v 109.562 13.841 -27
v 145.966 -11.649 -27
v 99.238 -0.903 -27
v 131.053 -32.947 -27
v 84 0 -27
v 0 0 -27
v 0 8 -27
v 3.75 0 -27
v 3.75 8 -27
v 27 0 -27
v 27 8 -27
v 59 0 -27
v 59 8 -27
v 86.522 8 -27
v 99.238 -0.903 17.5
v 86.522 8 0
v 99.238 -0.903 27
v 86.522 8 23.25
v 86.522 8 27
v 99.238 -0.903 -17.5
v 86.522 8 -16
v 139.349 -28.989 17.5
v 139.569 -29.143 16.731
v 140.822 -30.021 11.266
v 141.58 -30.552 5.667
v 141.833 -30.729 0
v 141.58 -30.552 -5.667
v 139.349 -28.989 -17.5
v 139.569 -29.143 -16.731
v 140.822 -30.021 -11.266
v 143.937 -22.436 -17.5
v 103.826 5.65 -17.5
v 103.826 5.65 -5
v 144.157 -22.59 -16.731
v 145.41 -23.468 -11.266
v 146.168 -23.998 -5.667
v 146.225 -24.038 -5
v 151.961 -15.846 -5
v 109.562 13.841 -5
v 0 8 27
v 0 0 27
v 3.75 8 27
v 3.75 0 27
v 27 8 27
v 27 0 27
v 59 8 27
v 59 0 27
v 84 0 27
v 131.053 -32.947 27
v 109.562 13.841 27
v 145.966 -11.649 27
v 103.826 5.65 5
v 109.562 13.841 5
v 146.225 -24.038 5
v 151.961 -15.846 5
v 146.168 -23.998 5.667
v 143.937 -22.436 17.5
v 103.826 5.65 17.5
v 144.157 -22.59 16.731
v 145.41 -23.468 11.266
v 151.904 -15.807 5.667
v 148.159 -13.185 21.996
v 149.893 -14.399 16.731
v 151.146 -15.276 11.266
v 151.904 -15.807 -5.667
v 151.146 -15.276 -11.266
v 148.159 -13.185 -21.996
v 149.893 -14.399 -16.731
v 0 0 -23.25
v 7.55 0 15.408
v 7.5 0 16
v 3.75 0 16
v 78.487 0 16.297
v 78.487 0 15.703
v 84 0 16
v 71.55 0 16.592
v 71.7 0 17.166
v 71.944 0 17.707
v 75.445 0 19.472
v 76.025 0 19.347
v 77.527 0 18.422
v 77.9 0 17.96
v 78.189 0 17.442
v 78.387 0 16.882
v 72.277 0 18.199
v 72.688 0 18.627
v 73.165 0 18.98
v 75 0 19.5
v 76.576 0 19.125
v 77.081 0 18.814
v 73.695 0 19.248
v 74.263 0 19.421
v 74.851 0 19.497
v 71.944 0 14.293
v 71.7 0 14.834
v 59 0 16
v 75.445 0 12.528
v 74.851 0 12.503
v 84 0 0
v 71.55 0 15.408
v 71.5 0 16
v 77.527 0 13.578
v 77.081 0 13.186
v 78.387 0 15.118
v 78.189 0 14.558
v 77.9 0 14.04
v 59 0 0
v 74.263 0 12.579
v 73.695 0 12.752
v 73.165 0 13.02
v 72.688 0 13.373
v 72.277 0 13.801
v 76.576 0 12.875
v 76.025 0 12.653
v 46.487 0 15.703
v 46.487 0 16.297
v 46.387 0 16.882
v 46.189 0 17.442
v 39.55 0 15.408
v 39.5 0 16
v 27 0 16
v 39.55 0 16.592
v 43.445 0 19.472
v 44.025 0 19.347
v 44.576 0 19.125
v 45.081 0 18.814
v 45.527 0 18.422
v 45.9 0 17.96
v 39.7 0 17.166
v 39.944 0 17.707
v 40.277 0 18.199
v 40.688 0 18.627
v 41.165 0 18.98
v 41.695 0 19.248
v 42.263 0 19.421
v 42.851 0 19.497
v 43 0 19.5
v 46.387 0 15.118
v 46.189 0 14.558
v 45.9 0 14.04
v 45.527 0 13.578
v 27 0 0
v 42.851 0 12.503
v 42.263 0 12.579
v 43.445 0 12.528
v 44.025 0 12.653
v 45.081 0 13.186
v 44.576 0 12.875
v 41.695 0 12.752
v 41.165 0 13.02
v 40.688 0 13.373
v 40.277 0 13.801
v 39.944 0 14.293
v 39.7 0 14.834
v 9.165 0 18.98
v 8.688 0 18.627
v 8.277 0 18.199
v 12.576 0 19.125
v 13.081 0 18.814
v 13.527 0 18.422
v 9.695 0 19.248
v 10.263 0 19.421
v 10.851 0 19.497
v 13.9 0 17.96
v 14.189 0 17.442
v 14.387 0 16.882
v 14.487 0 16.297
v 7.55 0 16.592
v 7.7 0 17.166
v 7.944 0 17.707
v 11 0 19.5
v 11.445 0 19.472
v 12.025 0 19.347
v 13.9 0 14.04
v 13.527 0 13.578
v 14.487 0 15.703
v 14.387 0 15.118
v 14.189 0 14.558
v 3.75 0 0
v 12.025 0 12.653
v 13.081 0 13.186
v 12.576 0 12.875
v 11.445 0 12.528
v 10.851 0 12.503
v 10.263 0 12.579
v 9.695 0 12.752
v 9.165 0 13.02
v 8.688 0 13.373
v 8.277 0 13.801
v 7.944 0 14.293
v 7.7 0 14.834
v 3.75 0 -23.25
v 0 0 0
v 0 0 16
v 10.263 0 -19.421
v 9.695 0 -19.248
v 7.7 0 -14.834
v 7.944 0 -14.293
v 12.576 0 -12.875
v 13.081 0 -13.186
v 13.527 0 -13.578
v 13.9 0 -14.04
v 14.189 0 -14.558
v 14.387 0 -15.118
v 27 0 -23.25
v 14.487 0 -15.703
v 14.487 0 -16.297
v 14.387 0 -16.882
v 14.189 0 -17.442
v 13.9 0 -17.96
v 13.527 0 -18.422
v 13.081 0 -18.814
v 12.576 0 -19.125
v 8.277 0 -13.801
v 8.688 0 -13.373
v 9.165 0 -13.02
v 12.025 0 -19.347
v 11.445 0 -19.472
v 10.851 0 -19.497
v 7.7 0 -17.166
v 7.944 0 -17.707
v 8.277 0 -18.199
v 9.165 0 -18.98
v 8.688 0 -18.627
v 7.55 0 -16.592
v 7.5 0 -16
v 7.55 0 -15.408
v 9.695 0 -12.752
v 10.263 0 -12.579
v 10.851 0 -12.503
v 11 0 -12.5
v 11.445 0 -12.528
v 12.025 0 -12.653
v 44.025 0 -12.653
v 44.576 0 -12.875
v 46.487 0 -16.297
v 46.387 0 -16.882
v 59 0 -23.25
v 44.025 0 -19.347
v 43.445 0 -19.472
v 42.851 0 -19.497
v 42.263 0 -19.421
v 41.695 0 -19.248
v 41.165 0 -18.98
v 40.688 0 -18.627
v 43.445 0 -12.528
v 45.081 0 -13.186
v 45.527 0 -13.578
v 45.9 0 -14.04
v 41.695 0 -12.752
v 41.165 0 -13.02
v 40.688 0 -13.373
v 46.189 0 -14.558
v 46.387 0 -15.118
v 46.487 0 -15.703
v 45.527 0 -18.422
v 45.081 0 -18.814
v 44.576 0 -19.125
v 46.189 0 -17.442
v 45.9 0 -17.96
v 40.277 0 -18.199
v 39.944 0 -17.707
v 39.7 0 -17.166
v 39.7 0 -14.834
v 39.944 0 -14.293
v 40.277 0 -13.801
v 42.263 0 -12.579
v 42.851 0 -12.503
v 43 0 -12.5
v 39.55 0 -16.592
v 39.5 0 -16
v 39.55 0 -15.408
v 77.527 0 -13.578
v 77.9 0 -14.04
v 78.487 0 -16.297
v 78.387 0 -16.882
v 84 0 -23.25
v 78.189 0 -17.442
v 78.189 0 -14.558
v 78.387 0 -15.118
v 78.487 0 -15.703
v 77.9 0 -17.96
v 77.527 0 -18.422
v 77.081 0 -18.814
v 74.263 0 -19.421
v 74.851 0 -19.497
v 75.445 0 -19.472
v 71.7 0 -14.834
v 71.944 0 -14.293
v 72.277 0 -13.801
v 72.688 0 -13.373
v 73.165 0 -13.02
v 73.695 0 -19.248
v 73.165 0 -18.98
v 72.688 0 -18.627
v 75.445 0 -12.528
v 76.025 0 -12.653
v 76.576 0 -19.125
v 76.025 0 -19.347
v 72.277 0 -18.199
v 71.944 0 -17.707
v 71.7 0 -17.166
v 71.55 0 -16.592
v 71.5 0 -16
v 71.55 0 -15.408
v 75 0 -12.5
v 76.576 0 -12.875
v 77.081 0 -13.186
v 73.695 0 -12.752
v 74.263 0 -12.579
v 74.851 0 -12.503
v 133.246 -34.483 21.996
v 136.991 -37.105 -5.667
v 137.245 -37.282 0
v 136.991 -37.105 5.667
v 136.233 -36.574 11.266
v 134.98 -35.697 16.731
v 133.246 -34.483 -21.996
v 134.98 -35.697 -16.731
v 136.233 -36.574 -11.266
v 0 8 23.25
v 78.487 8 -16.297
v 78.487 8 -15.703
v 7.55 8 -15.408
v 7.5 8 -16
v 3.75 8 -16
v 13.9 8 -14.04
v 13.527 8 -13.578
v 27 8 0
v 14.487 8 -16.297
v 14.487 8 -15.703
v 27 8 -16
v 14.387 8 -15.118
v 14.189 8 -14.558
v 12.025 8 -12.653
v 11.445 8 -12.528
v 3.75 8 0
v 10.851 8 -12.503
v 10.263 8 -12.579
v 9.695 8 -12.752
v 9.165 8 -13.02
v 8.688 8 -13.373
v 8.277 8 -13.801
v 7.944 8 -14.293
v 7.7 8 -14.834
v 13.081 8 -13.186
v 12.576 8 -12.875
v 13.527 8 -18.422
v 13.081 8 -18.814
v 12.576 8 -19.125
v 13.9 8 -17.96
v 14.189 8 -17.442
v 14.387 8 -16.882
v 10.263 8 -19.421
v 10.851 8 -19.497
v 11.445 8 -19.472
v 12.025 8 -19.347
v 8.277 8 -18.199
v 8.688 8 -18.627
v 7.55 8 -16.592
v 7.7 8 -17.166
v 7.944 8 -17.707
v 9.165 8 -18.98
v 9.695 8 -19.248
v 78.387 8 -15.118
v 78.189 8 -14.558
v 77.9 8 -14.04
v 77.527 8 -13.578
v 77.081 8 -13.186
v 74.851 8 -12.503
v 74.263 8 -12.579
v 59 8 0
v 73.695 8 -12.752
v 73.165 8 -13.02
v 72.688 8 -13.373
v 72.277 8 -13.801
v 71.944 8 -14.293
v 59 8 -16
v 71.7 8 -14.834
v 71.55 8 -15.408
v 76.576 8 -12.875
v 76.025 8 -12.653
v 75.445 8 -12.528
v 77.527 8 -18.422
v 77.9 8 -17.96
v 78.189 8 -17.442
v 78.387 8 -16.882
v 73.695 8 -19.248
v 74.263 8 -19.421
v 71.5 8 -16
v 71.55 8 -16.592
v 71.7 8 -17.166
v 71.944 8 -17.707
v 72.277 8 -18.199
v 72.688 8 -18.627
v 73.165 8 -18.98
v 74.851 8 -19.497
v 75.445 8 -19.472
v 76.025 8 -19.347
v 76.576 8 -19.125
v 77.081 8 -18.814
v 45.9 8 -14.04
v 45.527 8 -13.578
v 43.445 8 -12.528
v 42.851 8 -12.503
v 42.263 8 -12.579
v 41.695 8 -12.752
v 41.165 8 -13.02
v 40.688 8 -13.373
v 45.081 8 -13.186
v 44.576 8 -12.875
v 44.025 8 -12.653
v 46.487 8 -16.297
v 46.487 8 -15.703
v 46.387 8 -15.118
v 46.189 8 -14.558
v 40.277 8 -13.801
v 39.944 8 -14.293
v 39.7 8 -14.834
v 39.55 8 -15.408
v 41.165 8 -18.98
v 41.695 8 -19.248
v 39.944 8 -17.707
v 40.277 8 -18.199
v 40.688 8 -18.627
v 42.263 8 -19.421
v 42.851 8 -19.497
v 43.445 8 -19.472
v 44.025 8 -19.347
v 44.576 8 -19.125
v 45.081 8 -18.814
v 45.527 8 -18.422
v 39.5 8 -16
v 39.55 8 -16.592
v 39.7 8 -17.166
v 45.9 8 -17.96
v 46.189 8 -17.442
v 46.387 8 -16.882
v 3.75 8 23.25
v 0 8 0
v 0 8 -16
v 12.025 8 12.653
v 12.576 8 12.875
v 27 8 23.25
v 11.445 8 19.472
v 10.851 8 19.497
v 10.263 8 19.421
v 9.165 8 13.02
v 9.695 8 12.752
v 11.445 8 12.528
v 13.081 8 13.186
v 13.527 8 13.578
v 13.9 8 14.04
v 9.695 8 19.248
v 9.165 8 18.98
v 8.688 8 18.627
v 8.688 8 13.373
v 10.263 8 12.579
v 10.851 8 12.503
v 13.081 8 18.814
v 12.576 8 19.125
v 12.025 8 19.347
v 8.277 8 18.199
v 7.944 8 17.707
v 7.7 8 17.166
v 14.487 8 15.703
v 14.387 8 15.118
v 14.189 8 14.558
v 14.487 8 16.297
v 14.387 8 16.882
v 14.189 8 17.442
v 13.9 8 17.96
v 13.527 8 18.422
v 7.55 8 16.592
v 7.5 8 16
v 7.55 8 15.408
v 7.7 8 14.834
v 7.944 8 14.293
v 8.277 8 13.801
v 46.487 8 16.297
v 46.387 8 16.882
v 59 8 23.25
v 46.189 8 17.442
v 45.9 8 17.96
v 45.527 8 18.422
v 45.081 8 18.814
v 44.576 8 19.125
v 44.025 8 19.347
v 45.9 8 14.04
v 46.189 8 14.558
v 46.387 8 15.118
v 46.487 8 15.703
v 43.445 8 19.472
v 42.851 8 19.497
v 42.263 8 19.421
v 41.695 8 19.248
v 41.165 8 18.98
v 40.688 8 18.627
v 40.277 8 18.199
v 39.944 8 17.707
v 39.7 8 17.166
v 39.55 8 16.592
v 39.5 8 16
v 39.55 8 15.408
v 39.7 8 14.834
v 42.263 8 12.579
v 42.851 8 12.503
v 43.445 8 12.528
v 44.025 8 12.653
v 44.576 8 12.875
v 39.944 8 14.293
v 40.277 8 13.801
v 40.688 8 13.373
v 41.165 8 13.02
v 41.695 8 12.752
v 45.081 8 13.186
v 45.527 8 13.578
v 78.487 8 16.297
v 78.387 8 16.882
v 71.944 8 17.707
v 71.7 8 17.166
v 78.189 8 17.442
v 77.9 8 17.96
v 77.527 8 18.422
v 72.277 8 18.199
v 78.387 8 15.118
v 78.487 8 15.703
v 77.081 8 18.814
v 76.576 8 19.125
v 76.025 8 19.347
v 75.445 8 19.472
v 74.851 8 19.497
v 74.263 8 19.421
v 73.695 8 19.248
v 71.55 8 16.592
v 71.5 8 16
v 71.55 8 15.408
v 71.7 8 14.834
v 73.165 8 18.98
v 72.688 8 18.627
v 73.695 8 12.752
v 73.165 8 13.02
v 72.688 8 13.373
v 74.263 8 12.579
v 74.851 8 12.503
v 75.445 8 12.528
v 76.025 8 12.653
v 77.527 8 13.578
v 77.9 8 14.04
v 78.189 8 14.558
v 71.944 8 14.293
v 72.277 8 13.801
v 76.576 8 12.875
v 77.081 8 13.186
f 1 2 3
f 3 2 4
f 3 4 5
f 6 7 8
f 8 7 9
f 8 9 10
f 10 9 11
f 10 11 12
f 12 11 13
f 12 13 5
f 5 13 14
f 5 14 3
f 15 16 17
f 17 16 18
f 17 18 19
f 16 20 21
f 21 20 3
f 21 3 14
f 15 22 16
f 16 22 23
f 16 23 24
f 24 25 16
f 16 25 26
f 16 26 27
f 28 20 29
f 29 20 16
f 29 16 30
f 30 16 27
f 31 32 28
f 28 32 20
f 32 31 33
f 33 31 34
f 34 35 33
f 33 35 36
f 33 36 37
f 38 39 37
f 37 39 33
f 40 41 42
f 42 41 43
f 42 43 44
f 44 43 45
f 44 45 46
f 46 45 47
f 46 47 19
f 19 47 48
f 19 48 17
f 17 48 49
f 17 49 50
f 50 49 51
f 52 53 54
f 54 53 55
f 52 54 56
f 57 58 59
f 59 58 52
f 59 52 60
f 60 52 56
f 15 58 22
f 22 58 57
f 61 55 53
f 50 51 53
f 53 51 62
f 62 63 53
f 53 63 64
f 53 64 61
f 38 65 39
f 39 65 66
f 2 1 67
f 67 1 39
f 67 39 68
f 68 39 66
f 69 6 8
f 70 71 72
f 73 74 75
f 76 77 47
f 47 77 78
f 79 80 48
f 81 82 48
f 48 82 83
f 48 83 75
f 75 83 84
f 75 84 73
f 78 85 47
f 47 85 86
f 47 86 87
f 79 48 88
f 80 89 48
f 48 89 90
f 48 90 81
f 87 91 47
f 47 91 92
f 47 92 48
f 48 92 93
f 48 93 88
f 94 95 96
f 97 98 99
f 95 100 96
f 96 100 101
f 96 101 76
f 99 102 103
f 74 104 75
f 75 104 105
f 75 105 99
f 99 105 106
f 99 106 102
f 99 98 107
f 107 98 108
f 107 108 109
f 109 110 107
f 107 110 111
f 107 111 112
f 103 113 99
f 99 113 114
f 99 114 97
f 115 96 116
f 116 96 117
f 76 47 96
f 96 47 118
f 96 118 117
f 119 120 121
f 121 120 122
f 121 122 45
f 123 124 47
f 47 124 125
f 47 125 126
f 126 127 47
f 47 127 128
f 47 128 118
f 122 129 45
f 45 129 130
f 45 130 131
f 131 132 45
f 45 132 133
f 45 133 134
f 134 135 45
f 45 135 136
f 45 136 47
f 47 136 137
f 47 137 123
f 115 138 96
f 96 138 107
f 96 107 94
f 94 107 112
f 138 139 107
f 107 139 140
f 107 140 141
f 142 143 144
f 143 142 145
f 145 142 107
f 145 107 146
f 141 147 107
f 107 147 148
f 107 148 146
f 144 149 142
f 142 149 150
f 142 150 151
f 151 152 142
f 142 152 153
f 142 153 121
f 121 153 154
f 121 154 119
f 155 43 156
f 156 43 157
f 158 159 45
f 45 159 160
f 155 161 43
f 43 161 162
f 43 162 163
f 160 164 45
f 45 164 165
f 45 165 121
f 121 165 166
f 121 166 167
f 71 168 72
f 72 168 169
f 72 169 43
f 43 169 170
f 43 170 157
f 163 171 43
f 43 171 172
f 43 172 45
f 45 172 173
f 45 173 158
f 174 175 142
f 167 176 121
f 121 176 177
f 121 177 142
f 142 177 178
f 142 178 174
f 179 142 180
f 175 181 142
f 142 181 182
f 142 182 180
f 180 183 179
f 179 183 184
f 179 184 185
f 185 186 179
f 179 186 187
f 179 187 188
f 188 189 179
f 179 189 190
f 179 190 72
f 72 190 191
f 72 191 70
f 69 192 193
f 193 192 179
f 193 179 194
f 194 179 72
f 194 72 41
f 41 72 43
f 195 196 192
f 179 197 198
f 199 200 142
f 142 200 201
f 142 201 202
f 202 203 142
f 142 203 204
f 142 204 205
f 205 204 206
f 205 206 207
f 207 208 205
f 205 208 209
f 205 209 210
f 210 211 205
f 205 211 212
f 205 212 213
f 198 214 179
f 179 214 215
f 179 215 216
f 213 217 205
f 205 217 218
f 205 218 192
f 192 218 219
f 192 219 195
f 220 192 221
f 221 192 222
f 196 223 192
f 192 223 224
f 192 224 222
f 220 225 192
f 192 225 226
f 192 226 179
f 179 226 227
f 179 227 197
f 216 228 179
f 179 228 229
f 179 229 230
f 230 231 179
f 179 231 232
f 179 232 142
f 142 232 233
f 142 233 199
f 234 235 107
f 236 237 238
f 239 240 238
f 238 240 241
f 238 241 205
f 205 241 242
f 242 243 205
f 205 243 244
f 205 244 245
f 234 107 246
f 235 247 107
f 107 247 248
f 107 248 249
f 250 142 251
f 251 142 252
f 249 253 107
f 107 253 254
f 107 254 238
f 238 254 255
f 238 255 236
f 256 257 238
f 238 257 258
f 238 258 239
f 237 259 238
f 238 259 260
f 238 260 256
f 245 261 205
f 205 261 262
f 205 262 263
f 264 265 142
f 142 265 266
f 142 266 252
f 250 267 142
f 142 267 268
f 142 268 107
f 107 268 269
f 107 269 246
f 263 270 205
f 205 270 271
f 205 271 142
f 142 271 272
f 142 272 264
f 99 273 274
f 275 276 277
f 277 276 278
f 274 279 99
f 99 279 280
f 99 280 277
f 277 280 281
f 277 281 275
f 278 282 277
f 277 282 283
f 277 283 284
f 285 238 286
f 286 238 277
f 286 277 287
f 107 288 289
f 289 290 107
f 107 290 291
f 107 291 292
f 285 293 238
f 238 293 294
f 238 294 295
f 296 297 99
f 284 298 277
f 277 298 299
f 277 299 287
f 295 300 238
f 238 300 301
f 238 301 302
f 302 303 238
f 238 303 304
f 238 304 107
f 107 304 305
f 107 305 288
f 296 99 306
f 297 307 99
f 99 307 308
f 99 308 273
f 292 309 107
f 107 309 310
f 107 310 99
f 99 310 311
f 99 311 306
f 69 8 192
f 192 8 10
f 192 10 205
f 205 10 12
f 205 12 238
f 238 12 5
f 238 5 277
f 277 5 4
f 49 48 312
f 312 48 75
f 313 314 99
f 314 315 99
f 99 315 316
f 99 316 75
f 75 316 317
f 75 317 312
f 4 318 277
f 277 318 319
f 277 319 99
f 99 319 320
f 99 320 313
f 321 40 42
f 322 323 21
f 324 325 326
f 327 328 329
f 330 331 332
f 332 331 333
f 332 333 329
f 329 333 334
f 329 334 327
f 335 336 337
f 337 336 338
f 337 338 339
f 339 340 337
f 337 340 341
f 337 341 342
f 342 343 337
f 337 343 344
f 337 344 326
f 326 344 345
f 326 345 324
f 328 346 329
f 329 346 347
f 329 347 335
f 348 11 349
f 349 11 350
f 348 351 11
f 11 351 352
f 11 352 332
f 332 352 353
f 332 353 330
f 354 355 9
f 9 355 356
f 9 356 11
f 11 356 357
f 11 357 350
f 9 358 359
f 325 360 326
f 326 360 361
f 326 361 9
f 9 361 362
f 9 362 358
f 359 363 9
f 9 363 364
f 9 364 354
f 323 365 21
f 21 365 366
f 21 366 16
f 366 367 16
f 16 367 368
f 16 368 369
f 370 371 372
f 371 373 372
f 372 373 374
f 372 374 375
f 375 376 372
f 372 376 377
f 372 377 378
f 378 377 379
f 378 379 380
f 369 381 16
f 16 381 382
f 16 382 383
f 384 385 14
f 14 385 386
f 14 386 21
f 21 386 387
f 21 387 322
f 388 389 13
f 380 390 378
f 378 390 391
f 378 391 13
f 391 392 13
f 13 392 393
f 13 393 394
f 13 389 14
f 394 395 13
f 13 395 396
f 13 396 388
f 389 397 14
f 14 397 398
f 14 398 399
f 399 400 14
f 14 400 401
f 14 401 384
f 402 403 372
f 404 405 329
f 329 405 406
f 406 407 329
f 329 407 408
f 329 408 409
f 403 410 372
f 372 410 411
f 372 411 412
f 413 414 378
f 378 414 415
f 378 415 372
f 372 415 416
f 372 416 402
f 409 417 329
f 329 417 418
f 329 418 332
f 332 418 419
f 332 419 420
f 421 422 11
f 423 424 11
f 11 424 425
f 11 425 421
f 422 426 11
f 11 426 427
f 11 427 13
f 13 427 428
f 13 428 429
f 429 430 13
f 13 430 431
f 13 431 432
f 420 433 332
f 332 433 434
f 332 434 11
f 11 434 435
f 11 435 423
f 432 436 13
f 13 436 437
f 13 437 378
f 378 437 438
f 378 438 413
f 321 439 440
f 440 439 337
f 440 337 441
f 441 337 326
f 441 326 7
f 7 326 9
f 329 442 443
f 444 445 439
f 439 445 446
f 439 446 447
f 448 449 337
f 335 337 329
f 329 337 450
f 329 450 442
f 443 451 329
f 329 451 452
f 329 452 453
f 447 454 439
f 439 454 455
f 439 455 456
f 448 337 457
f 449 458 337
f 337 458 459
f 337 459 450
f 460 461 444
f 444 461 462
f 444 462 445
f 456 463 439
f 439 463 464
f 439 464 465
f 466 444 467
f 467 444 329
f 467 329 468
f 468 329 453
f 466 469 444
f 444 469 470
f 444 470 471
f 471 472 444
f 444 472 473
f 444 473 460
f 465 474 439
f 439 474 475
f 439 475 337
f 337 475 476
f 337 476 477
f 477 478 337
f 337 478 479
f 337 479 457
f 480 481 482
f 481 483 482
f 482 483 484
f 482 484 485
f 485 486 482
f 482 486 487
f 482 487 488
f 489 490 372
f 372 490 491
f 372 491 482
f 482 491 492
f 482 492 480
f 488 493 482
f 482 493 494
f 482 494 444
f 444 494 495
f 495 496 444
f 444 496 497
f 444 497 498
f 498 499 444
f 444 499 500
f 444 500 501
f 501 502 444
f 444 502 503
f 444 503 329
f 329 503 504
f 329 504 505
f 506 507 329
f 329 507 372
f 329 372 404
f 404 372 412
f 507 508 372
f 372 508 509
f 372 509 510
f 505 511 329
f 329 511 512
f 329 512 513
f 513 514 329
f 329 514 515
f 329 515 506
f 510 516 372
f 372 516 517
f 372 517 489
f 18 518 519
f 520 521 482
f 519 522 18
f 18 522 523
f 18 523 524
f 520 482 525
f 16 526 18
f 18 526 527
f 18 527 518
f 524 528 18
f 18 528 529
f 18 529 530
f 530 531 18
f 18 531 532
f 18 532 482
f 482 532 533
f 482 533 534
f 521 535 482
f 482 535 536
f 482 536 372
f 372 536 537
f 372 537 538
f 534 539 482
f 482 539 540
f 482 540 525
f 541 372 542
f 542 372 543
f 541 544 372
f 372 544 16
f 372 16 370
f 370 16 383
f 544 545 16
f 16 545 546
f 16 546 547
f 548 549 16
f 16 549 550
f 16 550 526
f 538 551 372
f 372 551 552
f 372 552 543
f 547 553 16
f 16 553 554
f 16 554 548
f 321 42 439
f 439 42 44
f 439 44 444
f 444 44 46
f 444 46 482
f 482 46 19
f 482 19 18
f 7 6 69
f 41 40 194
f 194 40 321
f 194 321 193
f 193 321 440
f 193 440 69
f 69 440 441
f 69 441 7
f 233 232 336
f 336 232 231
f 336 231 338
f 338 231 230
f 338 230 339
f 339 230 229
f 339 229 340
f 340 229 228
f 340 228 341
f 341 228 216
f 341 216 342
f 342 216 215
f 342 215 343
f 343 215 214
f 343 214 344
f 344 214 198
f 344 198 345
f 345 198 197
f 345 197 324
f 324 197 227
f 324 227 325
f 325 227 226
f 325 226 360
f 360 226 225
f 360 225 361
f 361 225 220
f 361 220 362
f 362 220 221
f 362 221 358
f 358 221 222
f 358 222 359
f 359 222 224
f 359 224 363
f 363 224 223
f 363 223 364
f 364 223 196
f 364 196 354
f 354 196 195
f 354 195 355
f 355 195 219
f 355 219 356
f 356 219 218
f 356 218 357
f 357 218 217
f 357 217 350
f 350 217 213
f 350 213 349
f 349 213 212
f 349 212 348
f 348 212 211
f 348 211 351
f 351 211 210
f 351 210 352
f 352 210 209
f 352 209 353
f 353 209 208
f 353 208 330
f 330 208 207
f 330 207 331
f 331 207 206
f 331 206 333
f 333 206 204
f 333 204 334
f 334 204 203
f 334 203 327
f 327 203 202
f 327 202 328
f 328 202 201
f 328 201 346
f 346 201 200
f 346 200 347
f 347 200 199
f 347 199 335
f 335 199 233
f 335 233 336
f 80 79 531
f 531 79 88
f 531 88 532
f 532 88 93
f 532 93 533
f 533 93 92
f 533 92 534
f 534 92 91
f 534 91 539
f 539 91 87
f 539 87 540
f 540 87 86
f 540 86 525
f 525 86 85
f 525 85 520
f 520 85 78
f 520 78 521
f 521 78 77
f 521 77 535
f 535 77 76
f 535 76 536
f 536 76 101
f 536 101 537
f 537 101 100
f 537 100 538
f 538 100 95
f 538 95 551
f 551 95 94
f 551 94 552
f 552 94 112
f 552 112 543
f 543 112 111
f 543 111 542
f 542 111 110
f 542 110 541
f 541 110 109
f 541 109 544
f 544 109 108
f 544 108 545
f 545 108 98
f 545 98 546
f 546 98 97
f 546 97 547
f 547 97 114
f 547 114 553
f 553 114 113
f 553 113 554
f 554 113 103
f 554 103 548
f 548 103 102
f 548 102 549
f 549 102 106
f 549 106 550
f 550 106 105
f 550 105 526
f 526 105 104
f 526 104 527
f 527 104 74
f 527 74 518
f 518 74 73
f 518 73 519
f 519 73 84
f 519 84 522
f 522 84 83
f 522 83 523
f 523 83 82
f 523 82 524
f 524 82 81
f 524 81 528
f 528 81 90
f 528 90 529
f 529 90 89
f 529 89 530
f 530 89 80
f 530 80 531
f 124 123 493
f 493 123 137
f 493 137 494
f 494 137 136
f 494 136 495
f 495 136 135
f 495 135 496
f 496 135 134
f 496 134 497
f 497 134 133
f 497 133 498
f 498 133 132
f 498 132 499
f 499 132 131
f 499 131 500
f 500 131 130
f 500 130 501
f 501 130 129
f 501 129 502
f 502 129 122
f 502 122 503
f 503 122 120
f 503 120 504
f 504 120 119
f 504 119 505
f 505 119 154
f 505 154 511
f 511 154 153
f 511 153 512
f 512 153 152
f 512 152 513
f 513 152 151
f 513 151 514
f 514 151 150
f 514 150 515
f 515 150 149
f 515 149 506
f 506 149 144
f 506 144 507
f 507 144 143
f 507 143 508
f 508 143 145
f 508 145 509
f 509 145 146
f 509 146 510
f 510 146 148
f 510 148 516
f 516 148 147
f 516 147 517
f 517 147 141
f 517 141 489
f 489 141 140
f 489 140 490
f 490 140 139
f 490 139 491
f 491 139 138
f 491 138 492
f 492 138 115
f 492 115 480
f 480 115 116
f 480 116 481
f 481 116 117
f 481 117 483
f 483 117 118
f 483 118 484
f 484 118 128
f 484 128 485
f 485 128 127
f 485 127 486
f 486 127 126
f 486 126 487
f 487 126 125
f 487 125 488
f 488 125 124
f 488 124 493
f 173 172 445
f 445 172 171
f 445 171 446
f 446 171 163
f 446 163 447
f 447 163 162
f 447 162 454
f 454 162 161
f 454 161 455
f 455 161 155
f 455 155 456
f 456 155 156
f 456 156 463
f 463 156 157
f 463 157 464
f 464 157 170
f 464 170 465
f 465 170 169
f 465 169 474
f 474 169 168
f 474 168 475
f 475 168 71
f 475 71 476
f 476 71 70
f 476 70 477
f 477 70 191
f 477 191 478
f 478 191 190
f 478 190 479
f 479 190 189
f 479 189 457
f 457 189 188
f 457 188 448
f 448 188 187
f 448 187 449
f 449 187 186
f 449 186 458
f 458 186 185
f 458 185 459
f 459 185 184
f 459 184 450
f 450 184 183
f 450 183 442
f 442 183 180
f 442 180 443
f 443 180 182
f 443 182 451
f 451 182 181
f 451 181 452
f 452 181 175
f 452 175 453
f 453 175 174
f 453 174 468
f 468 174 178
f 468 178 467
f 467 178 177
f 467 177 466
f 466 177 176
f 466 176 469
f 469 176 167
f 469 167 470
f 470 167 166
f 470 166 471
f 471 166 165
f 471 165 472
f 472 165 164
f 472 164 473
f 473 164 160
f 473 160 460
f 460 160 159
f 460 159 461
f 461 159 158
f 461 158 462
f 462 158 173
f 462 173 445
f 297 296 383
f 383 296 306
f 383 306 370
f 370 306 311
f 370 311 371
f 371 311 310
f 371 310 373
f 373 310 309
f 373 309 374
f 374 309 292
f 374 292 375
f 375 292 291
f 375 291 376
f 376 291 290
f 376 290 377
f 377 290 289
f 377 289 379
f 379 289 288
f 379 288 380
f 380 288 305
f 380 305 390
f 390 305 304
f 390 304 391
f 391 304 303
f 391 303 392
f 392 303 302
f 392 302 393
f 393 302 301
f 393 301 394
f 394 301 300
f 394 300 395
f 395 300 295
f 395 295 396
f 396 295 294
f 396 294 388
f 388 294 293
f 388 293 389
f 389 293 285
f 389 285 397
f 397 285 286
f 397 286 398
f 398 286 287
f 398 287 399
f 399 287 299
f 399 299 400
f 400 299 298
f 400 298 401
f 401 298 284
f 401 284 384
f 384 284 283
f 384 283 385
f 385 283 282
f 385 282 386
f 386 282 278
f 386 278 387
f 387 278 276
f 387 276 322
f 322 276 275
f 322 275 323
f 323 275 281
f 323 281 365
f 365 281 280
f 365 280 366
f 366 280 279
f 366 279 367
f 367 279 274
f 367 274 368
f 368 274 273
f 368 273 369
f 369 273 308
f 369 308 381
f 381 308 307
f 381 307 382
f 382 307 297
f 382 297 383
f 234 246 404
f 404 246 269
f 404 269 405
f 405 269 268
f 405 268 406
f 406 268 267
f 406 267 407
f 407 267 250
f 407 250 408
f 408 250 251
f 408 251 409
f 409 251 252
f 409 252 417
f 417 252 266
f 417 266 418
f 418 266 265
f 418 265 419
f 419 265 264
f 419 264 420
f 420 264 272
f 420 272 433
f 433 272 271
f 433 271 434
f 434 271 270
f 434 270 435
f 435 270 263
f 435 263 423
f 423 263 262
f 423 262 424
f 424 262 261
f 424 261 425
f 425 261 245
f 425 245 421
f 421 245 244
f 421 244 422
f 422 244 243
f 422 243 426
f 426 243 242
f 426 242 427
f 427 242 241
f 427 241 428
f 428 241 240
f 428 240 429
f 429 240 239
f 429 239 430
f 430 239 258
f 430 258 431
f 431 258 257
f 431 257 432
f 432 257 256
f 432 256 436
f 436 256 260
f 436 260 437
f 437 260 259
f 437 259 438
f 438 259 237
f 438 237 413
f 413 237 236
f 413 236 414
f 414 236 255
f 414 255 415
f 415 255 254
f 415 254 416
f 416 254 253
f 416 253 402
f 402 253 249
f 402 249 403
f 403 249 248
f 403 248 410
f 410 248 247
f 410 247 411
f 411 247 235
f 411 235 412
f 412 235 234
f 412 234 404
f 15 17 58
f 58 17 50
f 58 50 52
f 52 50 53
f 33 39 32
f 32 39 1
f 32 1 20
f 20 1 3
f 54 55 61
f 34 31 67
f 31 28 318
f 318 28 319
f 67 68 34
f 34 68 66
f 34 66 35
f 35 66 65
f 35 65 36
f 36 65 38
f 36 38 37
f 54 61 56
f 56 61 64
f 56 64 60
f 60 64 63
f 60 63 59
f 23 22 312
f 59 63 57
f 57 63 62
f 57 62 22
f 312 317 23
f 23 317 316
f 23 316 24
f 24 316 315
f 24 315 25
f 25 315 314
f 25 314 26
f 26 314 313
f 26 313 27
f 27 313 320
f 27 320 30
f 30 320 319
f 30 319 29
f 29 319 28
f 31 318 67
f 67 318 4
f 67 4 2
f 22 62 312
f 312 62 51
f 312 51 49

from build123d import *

# Parameters (mm, degrees)
BOSS_EXTRUDE1_DEPTH = 27
SKETCH2_R           = 3.5
CUT_EXTRUDE1_DEPTH  = 8
CUT_EXTRUDE2_DEPTH  = 53.574815946
CUT_EXTRUDE3_REACH  = 151.521
SKETCH5_W           = 1.574815946
SKETCH5_H           = 22
CUT_EXTRUDE4_REACH  = 151.521


with BuildPart() as part:
    # Sketch1 → Boss-Extrude1 (new, symmetric)
    with BuildSketch(Plane.XY):
        Polygon((0, 0), (0, 8), (86.522390311, 8), (97.947574365, 0), (108.271950219, 14.744736797), (152.157870224, -15.984515211), (137.244882879, -37.282468363), (84, 0), align=None)
    extrude(amount=BOSS_EXTRUDE1_DEPTH, both=True)

    # Sketch2 → Cut-Extrude1 (cut)
    with BuildSketch(Plane(origin=(0, 8, 0), x_dir=(1, 0, 0), z_dir=(0, 1, 0))):
        with Locations(Location((11, 16, 0), (0, 0, 180))):
            Circle(SKETCH2_R)
        with Locations(Location((43, 16, 0), (0, 0, 180))):
            Circle(SKETCH2_R)
        with Locations(Location((75, 16, 0), (0, 0, 180))):
            Circle(SKETCH2_R)
        with Locations(Location((11, -16, 0), (0, 0, 180))):
            Circle(SKETCH2_R)
        with Locations(Location((43, -16, 0), (0, 0, 180))):
            Circle(SKETCH2_R)
        with Locations(Location((75, -16, 0), (0, 0, 180))):
            Circle(SKETCH2_R)
    extrude(amount=-CUT_EXTRUDE1_DEPTH, mode=Mode.SUBTRACT)

    # Sketch4 → Cut-Extrude2 (cut)
    with BuildSketch(Plane(origin=(109.609728898, -76.749558436, 0), x_dir=(0, 0, -1), z_dir=(0.8191520442889955, -0.5735764363510408, 0))):
        Polygon((-17.5, 56.180420653), (0, 56.180420653), (0, 74.180420653), (-5, 74.180420653), (-5, 64.180420653), (-17.5, 64.180420653), align=None)
        Polygon((0, 74.180420653), (0, 56.180420653), (17.5, 56.180420653), (17.5, 64.180420653), (5, 64.180420653), (5, 74.180420653), align=None)
    extrude(amount=-CUT_EXTRUDE2_DEPTH, mode=Mode.SUBTRACT)

    # Cut-Extrude3: up to this face of the body (flat: up to its plane)
    cut_extrude3_end = Plane(part.part.faces().sort_by_distance((111.965486474, -9.815447728, 0))[0])
    # Sketch5 → Cut-Extrude3 (cut, up to the picked face)
    with BuildSketch(Plane(origin=(42.548141325, 60.765043225, 0), x_dir=(0.8191520442889958, -0.5735764363510405, 0), z_dir=(0.5735764363510404, 0.8191520442889957, 0)), mode=Mode.PRIVATE) as cut_extrude3_sk1:
        with Locations((81.021363747, 16)):
            Rectangle(SKETCH5_W, SKETCH5_H)
    cut_extrude3_tool1 = split(extrude(cut_extrude3_sk1.sketch, amount=-CUT_EXTRUDE3_REACH, mode=Mode.PRIVATE), bisect_by=cut_extrude3_end, keep=Keep.BOTH, mode=Mode.PRIVATE)
    # Sketch5 → Cut-Extrude3 (cut, up to the picked face)
    with BuildSketch(Plane(origin=(42.548141325, 60.765043225, 0), x_dir=(0.8191520442889958, -0.5735764363510405, 0), z_dir=(0.5735764363510404, 0.8191520442889957, 0)), mode=Mode.PRIVATE) as cut_extrude3_sk2:
        with Locations((81.021363747, -16)):
            Rectangle(SKETCH5_W, SKETCH5_H)
    cut_extrude3_tool2 = split(extrude(cut_extrude3_sk2.sketch, amount=-CUT_EXTRUDE3_REACH, mode=Mode.PRIVATE), bisect_by=cut_extrude3_end, keep=Keep.BOTH, mode=Mode.PRIVATE)
    add(cut_extrude3_tool1.solids().sort_by(Axis((108.916957, 14.293098, -16), (-0.5735764363510404, -0.8191520442889957, 0)))[0], mode=Mode.SUBTRACT)
    add(cut_extrude3_tool2.solids().sort_by(Axis((108.916957, 14.293098, 16), (-0.5735764363510404, -0.8191520442889957, 0)))[0], mode=Mode.SUBTRACT)

    # Cut-Extrude4: up to this face of the body (flat: up to its plane)
    cut_extrude4_end = Plane(part.part.faces().sort_by_distance((110.622441439, -18.641234181, 0))[0])
    # Sketch5<4> → Cut-Extrude4 (cut, up to the picked face)
    with BuildSketch(Plane(origin=(42.548141325, 60.765043225, 0), x_dir=(0.8191520442889958, -0.5735764363510405, 0), z_dir=(0.5735764363510404, 0.8191520442889957, 0)), mode=Mode.PRIVATE) as cut_extrude4_sk1:
        with BuildLine():
            Line((126.249743807, -27), (133.80877172, -27))
            Line((133.80877172, -27), (133.80877172, -17.5))
            Line((133.80877172, -17.5), (133.80877172, -5))
            Line((133.80877172, -5), (133.80877172, 0))
            ThreePointArc((133.80877172, 0), (131.883368816, -14.019084341), (126.249743807, -27))
        make_face()
    cut_extrude4_tool1 = split(extrude(cut_extrude4_sk1.sketch, amount=-CUT_EXTRUDE4_REACH, mode=Mode.PRIVATE), bisect_by=cut_extrude4_end, keep=Keep.BOTH, mode=Mode.PRIVATE)
    # Sketch5<4> → Cut-Extrude4 (cut, up to the picked face)
    with BuildSketch(Plane(origin=(42.548141325, 60.765043225, 0), x_dir=(0.8191520442889958, -0.5735764363510405, 0), z_dir=(0.5735764363510404, 0.8191520442889957, 0)), mode=Mode.PRIVATE) as cut_extrude4_sk2:
        with BuildLine():
            Line((133.567828899, 5), (133.80877172, 5))
            Line((133.80877172, 5), (133.80877172, 17.5))
            Line((133.80877172, 17.5), (133.80877172, 27))
            Line((133.80877172, 27), (126.249743807, 27))
            ThreePointArc((126.249743807, 27), (131.150553282, 16.413061639), (133.567828899, 5))
        make_face()
    cut_extrude4_tool2 = split(extrude(cut_extrude4_sk2.sketch, amount=-CUT_EXTRUDE4_REACH, mode=Mode.PRIVATE), bisect_by=cut_extrude4_end, keep=Keep.BOTH, mode=Mode.PRIVATE)
    # Sketch5<4> → Cut-Extrude4 (cut, up to the picked face)
    with BuildSketch(Plane(origin=(42.548141325, 60.765043225, 0), x_dir=(0.8191520442889958, -0.5735764363510405, 0), z_dir=(0.5735764363510404, 0.8191520442889957, 0)), mode=Mode.PRIVATE) as cut_extrude4_sk3:
        with BuildLine():
            ThreePointArc((133.567828899, 5), (133.748501087, 2.502900989), (133.80877172, 0))
            Line((133.80877172, 0), (133.80877172, 5))
            Line((133.80877172, 5), (133.567828899, 5))
        make_face()
    cut_extrude4_tool3 = split(extrude(cut_extrude4_sk3.sketch, amount=-CUT_EXTRUDE4_REACH, mode=Mode.PRIVATE), bisect_by=cut_extrude4_end, keep=Keep.BOTH, mode=Mode.PRIVATE)
    add(cut_extrude4_tool1.solids().sort_by(Axis((150.325954, -14.701794, 20.352048), (-0.5735764363510404, -0.8191520442889957, 0)))[0], mode=Mode.SUBTRACT)
    add(cut_extrude4_tool2.solids().sort_by(Axis((150.3151, -14.694193, -20.453703), (-0.5735764363510404, -0.8191520442889957, 0)))[0], mode=Mode.SUBTRACT)
    add(cut_extrude4_tool3.solids().sort_by(Axis((152.098683, -15.943072, -3.75058), (-0.5735764363510404, -0.8191520442889957, 0)))[0], mode=Mode.SUBTRACT)


solid = part.part
